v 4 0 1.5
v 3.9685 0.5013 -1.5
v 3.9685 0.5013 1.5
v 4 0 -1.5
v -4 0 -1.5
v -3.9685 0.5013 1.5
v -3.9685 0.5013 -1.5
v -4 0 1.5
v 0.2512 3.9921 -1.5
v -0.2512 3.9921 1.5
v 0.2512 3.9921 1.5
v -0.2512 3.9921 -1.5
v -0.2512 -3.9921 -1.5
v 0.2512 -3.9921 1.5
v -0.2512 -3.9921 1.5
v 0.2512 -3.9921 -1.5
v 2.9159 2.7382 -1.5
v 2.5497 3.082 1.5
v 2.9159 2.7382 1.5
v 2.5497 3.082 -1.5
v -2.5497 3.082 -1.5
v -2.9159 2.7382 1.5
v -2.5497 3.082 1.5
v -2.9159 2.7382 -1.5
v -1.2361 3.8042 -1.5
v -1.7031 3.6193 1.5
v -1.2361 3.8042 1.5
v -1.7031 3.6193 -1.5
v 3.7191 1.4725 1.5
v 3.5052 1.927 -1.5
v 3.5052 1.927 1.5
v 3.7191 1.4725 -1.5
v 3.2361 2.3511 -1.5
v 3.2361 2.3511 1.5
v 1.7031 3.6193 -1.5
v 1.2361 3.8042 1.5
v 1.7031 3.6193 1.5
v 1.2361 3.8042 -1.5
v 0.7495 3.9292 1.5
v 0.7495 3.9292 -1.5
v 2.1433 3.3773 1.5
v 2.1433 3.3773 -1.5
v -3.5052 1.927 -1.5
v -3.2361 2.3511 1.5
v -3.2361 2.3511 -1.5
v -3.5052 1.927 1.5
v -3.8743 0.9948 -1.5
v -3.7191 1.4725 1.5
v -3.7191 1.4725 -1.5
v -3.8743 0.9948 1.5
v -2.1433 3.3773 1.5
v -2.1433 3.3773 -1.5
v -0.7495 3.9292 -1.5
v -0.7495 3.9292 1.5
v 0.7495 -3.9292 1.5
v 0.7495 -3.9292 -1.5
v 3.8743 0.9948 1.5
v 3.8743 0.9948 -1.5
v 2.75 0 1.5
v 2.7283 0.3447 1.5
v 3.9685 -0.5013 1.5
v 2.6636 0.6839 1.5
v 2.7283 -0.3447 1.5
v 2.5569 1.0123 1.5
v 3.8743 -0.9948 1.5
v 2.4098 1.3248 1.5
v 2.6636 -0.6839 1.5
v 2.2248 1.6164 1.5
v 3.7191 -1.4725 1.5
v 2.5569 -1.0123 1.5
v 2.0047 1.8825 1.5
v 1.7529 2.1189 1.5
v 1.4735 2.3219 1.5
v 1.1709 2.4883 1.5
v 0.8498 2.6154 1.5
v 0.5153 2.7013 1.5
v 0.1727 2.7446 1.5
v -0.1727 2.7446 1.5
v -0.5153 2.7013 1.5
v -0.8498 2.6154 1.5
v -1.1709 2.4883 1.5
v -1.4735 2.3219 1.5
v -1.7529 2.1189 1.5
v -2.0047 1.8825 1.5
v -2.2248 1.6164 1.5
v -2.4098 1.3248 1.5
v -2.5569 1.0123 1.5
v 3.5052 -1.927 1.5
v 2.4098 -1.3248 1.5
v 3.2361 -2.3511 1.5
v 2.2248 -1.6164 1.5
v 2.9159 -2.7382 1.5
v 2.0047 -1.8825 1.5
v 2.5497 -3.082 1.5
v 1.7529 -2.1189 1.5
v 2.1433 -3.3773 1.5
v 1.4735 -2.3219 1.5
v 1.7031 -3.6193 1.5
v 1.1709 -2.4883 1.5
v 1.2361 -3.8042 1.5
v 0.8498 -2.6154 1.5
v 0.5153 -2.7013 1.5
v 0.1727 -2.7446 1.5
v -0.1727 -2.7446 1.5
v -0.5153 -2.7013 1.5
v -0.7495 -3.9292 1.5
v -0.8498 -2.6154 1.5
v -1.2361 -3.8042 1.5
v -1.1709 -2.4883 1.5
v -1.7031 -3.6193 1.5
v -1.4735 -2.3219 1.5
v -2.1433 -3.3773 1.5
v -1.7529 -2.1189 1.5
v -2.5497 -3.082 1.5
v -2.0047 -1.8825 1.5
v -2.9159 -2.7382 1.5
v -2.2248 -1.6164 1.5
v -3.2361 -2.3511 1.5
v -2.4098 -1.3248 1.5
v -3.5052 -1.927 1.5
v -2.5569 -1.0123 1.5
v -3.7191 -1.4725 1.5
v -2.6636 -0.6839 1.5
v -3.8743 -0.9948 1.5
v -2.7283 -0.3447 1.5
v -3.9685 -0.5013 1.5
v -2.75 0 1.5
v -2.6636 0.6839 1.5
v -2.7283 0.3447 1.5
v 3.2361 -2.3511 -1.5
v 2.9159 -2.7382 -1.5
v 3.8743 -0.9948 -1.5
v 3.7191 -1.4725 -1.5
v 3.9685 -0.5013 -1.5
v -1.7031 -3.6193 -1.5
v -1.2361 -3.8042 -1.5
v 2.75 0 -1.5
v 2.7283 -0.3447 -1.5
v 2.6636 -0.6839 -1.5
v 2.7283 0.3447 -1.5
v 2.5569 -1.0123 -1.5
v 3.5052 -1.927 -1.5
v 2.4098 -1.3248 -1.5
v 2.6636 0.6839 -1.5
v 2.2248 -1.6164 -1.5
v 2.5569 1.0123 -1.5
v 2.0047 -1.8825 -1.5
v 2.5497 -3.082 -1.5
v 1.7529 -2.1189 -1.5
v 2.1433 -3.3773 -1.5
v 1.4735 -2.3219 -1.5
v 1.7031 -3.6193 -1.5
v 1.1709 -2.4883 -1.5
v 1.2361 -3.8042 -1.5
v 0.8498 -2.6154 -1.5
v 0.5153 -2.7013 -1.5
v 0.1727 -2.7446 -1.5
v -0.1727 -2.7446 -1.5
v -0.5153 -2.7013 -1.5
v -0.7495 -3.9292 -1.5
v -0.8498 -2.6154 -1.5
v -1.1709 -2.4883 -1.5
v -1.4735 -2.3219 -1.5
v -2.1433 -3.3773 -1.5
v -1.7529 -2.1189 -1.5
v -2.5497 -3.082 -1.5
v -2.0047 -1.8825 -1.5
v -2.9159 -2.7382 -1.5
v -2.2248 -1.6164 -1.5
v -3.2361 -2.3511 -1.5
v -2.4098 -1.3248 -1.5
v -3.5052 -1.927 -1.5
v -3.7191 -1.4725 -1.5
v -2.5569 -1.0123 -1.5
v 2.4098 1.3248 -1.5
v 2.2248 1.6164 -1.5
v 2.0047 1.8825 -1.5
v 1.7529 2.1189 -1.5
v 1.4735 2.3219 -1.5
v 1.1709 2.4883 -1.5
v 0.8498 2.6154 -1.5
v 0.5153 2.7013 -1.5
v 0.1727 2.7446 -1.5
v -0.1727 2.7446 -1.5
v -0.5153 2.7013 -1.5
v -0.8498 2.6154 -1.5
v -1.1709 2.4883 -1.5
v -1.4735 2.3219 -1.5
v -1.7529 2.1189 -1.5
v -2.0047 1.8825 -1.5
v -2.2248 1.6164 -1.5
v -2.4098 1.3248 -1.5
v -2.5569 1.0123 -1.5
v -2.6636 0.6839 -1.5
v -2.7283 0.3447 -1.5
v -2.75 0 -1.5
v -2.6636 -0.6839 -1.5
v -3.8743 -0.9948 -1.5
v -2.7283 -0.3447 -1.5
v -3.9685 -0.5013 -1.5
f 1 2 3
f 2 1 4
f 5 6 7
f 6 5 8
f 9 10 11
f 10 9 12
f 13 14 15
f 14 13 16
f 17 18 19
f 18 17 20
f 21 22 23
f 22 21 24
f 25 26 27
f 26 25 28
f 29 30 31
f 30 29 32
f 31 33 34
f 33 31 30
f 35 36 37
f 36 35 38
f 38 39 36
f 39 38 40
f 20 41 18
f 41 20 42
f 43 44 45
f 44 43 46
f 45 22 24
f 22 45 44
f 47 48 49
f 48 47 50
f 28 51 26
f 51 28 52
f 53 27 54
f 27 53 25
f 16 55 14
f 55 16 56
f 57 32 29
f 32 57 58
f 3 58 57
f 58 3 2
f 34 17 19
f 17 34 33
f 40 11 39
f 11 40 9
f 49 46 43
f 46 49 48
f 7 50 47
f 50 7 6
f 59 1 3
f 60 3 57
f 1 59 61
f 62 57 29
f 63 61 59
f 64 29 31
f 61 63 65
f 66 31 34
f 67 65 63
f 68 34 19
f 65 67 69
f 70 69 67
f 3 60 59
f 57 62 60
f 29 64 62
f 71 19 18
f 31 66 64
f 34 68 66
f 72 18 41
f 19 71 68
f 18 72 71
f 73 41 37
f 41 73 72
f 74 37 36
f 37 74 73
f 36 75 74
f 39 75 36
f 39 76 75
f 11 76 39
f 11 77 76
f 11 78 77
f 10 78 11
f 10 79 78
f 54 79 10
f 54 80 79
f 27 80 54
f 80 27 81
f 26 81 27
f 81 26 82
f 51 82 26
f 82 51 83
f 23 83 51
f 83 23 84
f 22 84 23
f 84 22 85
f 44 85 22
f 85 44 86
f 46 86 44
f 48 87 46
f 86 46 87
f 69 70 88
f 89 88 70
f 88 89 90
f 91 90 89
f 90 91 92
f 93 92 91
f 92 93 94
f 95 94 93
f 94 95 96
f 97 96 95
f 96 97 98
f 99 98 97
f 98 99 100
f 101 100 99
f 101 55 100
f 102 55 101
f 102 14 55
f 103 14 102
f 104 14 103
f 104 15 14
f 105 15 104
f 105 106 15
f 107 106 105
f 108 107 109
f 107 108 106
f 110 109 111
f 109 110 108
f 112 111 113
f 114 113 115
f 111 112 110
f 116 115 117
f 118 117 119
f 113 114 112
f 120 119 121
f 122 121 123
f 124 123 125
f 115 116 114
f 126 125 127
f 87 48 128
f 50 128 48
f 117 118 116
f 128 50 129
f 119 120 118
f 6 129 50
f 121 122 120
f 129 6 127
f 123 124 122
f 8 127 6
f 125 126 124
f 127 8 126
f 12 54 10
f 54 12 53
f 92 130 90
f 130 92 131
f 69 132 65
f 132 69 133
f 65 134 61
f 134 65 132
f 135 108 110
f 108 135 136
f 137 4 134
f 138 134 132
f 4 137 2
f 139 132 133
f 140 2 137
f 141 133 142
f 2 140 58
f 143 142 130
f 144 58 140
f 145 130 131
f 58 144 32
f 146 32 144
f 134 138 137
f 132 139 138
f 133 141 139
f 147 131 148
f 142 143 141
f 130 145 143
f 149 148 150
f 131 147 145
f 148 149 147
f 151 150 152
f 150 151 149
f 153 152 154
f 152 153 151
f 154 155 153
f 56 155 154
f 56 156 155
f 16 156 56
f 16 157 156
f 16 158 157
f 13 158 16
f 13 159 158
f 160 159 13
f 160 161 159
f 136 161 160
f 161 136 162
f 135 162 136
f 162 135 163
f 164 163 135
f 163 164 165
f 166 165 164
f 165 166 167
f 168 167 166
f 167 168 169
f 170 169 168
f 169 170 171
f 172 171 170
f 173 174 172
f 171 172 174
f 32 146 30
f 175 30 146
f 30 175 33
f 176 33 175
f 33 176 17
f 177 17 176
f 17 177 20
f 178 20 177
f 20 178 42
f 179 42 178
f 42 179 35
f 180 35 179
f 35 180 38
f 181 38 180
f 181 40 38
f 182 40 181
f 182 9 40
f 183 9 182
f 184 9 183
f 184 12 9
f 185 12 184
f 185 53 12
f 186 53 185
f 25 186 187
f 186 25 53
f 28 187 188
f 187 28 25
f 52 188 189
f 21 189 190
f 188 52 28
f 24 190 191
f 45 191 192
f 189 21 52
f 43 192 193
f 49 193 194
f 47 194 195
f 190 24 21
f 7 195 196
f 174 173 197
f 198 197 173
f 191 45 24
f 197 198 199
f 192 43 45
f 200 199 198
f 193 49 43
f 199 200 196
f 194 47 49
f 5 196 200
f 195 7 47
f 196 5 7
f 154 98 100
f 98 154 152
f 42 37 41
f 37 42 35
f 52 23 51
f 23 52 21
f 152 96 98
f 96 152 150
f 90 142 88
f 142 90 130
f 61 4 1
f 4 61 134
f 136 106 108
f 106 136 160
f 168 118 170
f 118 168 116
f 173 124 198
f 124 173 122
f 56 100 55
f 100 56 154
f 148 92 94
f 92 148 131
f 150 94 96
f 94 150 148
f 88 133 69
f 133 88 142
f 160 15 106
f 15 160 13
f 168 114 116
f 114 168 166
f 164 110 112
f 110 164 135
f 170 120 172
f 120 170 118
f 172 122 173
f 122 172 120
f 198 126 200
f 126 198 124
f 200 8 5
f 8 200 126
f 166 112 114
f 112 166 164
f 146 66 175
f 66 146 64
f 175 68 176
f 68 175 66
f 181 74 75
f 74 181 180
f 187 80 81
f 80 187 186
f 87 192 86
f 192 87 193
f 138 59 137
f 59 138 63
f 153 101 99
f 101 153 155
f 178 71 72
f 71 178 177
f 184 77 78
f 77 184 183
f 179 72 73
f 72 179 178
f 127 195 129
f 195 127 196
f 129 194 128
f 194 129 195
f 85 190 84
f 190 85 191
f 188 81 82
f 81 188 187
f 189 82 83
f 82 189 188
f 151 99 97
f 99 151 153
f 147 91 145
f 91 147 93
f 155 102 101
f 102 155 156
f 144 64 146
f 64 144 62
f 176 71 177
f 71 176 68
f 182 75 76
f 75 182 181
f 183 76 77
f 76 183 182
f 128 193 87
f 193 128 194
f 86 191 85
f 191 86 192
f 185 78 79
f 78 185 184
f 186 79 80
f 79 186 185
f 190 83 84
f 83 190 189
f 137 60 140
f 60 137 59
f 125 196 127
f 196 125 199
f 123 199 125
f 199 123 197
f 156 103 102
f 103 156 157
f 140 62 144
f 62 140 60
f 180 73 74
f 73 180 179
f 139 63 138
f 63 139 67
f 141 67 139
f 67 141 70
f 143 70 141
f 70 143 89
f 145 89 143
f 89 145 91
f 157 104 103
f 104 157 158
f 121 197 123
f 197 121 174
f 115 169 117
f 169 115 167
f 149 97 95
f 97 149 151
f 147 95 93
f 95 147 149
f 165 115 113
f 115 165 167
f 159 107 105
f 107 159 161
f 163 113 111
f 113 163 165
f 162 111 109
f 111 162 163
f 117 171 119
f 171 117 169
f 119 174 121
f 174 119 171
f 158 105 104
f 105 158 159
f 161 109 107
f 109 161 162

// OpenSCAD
$fn = 50;


difference() {
	union() {
		translate(v = [0, 0, -1.5000000000]) {
			cylinder(h = 3, r = 4.0000000000);
		}
	}
	union() {
		translate(v = [0, 0, -100.0000000000]) {
			cylinder(h = 200, r = 2.7500000000);
		}
	}
}
